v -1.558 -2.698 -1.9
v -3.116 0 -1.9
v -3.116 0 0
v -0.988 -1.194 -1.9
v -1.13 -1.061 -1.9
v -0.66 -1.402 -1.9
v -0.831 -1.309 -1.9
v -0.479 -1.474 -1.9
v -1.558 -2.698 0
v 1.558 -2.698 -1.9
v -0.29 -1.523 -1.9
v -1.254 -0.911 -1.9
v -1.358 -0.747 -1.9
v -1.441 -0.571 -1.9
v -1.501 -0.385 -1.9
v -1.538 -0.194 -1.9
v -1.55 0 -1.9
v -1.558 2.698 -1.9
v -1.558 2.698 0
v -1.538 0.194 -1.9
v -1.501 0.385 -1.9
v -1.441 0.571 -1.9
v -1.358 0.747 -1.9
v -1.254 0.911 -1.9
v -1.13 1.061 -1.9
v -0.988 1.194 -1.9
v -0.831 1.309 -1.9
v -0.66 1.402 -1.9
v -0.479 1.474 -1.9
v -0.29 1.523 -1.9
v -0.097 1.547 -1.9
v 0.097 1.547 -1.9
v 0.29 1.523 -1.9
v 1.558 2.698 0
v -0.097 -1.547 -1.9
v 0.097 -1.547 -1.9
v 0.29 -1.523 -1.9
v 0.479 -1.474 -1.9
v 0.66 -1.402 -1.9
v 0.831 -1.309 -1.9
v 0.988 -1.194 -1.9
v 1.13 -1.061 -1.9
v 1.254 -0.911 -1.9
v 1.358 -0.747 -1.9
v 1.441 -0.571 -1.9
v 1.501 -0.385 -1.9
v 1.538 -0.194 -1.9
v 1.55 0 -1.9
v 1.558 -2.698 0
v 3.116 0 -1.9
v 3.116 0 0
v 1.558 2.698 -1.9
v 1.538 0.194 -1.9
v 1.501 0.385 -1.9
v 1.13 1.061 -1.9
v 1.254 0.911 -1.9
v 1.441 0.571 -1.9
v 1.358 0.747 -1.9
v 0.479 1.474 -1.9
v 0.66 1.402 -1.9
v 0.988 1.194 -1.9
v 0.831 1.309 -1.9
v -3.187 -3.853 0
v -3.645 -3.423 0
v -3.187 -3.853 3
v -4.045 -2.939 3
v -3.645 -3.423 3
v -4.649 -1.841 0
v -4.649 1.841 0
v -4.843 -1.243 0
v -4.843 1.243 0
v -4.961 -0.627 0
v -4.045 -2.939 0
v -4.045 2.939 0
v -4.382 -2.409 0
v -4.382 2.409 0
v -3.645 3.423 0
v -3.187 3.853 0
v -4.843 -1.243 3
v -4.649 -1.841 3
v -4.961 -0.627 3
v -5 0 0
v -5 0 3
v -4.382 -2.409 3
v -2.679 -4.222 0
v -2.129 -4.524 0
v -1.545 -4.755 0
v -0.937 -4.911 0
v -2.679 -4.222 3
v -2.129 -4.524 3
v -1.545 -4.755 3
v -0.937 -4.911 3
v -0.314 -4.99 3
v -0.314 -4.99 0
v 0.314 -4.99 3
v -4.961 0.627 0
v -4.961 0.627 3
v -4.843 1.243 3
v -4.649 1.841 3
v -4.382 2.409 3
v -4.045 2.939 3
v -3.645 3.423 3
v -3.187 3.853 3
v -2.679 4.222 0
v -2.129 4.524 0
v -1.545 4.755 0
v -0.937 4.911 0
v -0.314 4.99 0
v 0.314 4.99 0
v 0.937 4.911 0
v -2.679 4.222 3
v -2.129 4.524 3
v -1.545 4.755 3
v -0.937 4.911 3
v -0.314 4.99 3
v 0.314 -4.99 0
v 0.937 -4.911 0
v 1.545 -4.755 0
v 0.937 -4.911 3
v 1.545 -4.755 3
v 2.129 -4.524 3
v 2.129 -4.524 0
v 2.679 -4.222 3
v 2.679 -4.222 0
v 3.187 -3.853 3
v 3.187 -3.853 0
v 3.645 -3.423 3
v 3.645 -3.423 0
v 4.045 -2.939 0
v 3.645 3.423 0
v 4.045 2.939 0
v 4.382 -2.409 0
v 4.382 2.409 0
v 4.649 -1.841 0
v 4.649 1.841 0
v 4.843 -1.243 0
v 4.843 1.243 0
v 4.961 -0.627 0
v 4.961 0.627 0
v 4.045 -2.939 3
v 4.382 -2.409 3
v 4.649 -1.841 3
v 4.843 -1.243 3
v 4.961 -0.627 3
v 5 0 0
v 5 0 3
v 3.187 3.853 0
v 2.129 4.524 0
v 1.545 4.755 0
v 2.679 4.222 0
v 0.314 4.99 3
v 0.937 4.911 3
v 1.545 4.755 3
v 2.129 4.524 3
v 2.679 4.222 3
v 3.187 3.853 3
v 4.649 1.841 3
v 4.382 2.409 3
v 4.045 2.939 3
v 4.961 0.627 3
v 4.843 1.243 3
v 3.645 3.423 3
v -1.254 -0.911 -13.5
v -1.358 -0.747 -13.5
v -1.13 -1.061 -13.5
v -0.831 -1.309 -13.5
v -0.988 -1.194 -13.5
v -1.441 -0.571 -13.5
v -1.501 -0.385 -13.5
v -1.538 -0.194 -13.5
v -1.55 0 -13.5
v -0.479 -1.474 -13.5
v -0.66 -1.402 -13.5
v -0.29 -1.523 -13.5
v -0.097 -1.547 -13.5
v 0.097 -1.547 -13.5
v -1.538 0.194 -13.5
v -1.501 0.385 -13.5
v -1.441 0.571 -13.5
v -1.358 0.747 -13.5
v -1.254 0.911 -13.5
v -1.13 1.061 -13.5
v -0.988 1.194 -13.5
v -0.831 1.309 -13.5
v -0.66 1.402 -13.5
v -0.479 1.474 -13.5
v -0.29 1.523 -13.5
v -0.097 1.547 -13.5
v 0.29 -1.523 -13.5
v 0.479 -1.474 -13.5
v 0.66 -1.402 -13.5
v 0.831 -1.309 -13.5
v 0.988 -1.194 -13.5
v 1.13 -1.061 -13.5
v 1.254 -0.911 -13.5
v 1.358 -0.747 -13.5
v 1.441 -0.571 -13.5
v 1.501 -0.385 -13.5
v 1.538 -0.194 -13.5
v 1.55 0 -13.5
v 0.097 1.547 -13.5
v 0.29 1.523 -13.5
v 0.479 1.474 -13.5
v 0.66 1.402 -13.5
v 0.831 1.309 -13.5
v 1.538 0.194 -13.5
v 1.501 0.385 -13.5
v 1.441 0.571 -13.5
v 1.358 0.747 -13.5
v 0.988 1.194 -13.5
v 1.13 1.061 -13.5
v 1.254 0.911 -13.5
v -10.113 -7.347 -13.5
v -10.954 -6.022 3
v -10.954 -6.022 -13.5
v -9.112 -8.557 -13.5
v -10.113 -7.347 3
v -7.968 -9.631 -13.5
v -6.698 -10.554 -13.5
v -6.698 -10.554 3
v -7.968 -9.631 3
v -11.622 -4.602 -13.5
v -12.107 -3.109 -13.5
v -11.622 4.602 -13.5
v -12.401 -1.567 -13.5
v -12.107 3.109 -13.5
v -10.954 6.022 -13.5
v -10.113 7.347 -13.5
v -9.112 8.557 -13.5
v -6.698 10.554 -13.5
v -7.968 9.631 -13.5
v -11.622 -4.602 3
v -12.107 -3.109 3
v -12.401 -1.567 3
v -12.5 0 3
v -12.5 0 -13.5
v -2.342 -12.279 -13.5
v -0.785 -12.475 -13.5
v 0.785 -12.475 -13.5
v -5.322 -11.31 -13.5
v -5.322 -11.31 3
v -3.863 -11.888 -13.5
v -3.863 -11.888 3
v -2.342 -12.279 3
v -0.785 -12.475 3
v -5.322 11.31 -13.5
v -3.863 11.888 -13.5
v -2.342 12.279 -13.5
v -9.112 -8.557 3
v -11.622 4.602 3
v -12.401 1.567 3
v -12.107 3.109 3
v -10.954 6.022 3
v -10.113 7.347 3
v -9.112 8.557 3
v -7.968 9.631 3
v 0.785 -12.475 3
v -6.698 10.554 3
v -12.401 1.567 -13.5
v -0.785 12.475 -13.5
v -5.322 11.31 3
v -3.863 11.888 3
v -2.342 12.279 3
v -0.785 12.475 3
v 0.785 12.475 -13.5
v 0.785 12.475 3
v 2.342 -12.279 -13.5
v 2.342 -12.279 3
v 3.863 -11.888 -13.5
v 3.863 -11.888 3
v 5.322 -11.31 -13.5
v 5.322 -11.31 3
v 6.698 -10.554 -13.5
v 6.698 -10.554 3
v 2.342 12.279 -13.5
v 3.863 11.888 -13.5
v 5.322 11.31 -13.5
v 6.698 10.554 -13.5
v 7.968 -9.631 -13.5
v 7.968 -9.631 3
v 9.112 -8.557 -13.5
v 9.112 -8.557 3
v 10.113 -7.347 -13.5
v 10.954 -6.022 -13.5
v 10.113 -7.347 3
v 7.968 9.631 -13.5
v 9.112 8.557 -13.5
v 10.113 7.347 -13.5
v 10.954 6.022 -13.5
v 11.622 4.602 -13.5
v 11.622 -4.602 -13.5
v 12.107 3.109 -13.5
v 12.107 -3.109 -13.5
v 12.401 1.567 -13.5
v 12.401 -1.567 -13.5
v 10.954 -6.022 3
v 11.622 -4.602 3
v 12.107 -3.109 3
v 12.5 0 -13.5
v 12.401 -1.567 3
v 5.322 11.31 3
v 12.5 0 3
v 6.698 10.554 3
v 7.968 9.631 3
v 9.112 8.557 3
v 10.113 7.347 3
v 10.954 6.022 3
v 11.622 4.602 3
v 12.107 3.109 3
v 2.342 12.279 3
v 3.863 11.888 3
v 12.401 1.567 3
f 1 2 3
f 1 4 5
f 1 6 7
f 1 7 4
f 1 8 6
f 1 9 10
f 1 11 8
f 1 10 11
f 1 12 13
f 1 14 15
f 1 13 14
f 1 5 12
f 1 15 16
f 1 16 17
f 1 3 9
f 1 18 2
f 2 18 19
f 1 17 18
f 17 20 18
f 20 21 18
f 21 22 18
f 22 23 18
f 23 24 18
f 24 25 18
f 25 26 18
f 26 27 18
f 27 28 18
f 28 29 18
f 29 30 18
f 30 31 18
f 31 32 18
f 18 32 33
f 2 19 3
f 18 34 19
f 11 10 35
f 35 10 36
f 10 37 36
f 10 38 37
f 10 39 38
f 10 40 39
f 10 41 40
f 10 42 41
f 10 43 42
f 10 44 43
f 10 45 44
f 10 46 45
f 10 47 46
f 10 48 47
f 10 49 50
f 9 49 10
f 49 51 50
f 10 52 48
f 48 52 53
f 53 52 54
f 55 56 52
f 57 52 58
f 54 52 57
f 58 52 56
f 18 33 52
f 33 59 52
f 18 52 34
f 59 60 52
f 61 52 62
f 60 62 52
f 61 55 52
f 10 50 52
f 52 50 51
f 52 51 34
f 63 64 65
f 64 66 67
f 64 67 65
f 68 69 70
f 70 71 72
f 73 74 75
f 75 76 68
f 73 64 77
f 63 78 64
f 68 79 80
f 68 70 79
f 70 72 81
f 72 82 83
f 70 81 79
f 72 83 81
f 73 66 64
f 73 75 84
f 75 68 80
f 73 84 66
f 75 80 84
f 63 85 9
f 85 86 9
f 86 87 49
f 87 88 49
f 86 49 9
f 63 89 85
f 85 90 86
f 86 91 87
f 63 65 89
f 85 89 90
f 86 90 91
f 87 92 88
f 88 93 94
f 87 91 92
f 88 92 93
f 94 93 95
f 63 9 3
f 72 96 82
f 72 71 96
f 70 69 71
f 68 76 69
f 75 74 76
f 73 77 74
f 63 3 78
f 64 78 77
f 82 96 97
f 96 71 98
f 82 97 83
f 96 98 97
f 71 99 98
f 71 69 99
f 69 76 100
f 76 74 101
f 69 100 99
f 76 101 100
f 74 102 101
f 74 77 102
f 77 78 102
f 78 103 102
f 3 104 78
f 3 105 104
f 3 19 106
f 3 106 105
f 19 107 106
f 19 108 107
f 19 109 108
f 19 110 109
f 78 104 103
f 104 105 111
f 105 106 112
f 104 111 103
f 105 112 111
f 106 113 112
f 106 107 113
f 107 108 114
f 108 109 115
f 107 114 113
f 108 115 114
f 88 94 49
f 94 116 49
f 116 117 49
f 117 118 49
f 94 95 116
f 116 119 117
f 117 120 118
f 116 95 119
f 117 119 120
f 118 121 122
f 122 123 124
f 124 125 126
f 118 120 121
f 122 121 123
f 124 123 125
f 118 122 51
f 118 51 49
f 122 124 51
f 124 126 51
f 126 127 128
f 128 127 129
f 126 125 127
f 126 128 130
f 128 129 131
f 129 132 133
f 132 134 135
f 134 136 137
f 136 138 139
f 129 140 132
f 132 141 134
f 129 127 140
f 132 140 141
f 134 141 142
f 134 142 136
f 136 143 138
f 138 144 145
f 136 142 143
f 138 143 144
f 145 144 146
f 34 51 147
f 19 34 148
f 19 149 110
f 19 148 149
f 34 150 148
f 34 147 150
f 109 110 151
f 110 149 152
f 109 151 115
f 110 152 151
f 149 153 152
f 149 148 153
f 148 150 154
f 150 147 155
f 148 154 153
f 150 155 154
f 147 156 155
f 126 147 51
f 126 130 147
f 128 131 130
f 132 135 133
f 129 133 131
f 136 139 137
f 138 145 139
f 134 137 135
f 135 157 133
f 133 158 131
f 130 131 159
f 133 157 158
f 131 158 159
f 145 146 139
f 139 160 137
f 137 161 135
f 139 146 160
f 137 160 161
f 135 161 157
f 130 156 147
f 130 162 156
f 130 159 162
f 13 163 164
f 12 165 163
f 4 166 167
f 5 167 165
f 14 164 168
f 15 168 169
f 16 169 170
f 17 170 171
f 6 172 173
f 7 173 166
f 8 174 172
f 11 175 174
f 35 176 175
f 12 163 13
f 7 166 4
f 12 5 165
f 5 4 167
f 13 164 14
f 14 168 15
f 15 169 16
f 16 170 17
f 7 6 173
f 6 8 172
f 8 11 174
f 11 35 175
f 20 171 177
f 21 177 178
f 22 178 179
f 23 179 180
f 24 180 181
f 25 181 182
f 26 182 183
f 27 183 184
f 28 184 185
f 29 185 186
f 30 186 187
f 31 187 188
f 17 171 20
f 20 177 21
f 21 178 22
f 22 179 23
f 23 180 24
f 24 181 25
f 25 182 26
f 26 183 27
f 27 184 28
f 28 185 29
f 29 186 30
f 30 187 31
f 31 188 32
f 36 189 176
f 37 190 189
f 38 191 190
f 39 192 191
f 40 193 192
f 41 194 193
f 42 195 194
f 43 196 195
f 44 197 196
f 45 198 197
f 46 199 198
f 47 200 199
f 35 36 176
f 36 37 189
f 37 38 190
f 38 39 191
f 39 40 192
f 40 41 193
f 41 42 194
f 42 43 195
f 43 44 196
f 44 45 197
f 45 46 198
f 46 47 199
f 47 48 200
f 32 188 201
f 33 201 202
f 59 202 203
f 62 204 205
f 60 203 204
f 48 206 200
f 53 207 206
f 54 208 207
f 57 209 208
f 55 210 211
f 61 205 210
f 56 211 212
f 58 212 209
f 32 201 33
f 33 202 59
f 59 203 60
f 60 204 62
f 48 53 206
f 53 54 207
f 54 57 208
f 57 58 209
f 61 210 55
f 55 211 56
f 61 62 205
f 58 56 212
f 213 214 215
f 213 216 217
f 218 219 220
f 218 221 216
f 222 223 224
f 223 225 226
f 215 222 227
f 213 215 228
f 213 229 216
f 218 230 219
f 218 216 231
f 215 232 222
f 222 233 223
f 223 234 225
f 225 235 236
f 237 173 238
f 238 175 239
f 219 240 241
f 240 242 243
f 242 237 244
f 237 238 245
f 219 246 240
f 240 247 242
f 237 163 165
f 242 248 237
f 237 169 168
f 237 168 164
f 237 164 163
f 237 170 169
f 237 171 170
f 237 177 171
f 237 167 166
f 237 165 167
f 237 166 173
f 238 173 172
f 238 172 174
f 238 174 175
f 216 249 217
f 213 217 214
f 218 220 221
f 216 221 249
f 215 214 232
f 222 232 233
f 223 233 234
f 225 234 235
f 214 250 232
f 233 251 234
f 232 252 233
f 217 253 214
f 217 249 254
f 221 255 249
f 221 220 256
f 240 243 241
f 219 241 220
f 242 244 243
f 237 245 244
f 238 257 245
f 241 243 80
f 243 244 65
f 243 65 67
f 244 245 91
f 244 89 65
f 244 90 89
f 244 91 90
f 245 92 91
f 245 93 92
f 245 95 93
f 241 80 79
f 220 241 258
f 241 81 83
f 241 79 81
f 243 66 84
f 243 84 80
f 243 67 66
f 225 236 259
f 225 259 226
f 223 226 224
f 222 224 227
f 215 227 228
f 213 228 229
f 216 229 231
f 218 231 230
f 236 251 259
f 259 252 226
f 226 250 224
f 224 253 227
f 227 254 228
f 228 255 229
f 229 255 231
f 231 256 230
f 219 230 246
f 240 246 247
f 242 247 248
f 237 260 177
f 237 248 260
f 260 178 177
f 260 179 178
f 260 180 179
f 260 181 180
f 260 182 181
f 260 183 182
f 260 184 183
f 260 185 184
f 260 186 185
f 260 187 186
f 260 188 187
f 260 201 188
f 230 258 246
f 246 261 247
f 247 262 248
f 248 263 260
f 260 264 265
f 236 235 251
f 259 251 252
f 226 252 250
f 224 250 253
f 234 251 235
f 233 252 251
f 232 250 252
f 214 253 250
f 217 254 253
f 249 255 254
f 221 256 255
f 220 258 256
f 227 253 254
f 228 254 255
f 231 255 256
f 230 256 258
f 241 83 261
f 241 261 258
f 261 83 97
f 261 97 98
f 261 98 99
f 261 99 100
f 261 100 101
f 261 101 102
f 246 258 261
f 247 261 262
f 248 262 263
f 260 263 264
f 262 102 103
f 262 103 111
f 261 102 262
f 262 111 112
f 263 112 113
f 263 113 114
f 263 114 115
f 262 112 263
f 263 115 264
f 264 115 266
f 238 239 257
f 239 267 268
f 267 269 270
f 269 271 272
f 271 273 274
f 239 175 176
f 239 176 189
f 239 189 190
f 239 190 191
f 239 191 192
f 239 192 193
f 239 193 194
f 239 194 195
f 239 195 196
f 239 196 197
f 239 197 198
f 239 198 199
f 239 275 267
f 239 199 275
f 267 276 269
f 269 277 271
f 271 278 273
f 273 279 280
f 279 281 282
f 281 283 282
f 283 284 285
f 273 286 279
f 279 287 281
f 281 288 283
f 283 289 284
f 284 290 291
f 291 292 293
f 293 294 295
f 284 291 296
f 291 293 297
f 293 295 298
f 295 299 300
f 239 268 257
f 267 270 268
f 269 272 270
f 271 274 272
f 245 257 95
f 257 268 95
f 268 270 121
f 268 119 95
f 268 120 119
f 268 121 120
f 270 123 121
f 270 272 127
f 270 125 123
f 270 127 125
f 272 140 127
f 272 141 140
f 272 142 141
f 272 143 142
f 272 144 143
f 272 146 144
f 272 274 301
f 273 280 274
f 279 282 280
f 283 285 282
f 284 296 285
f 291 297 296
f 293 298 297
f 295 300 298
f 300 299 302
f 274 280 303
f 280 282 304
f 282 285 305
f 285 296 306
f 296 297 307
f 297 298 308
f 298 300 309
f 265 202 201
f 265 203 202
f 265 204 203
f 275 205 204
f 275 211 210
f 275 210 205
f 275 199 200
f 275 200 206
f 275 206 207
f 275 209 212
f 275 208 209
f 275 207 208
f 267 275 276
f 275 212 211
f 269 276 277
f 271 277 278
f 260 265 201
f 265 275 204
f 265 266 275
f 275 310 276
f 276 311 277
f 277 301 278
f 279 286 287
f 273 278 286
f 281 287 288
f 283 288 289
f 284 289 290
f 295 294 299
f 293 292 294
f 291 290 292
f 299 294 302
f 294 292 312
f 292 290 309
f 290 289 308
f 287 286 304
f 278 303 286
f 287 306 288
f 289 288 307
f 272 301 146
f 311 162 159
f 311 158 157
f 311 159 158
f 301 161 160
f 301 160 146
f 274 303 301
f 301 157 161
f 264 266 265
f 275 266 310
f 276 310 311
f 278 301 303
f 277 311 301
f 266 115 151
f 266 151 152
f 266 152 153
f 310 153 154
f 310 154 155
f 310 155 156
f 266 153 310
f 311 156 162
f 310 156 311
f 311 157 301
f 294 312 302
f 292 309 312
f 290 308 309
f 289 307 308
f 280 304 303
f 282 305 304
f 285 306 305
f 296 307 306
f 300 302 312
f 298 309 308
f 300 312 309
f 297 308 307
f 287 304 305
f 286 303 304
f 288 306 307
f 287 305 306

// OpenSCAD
$fn = 50;


difference() {
	union() {
		translate(v = [0, 0, -13.5000000000]) {
			cylinder(h = 16.5000000000, r = 12.5000000000);
		}
	}
	union() {
		translate(v = [0, 0, 0]) {
			rotate(a = [0, 0, 0]) {
				difference() {
					union() {
						translate(v = [0, 0, -1.9000000000]) {
							linear_extrude(height = 1.9000000000) {
								polygon(points = [[3.1158000000, 0.0000000000], [1.5579000000, 2.6983619531], [-1.5579000000, 2.6983619531], [-3.1158000000, 0.0000000000], [-1.5579000000, -2.6983619531], [1.5579000000, -2.6983619531]]);
							}
						}
					}
					union();
				}
			}
		}
		#cylinder(h = 3, r = 5.0000000000);
		#translate(v = [0, 0, -100.0000000000]) {
			cylinder(h = 200, r = 1.5500000000);
		}
	}
}
